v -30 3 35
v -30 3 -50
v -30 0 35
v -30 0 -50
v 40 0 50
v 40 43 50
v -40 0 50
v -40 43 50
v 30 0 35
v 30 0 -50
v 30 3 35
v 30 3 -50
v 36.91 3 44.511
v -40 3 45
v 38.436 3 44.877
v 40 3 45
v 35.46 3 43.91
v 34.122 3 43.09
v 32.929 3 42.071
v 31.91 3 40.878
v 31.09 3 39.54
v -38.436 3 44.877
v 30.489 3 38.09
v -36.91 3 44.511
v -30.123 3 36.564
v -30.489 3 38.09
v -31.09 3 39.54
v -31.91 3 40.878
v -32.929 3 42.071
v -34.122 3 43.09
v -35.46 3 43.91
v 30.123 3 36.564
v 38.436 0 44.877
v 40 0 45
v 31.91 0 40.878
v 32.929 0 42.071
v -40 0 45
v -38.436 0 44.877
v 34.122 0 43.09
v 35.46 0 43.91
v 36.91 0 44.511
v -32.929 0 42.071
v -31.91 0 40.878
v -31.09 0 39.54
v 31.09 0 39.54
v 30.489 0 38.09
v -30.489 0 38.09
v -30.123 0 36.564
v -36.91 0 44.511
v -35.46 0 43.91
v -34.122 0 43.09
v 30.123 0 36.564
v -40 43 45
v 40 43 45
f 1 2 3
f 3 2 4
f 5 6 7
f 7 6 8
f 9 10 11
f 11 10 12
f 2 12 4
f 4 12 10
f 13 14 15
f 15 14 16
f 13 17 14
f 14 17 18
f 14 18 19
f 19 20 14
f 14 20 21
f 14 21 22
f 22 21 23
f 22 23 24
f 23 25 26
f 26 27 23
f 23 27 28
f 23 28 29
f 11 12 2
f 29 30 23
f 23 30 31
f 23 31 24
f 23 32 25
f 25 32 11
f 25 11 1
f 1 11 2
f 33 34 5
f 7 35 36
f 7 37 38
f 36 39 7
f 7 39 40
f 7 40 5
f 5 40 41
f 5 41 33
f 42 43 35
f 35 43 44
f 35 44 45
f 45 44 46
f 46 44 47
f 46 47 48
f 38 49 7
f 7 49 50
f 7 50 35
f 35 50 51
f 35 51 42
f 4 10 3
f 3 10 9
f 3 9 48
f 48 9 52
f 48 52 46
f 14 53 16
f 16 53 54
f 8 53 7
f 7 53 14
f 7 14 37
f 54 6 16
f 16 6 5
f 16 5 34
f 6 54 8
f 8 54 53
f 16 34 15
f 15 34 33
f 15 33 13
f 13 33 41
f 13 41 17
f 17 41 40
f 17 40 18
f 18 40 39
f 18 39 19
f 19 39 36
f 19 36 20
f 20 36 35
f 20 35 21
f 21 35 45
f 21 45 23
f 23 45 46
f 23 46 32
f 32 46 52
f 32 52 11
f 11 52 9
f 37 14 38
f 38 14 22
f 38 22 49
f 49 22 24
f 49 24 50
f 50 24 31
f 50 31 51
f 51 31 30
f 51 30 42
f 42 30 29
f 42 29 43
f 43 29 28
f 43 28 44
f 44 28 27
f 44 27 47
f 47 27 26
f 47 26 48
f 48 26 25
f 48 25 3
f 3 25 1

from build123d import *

# Parameters (mm, degrees)
SKETCH_1_W           = 60
SKETCH_1_H           = 100
EXTRUDE_1_DEPTH      = 3
EXTRUDE_2_DEPTH      = 40
EXTRUDE_2_DEPTH_BACK = 3
SKETCH_2_W           = 80
SKETCH_2_H           = 5
FILLET_1_R           = 10


with BuildPart() as part:
    # Эскиз1 → Бобышка-Вытянуть1 (new body)
    with BuildSketch(Plane(origin=(0, 0, 0), x_dir=(1, 0, 0), z_dir=(0, 1, 0))):
        Rectangle(SKETCH_1_W, SKETCH_1_H)
    extrude(amount=EXTRUDE_1_DEPTH)

    # Эскиз2 → Бобышка-Вытянуть2 (add, two sides: drawn at the far end of the back side and taken through both)
    with BuildSketch(Plane(origin=(0, 3, 0), x_dir=(1, 0, 0), z_dir=(0, 1, 0)).offset(-EXTRUDE_2_DEPTH_BACK)):
        with Locations((0, -47.5)):
            Rectangle(SKETCH_2_W, SKETCH_2_H)
    extrude(amount=EXTRUDE_2_DEPTH + EXTRUDE_2_DEPTH_BACK)

    # Скругление1
    fillet_1_edges = [part.edges().sort_by_distance(p)[0] for p in [
        (30, 1.5, 45),
        (-30, 1.5, 45),
    ]]
    fillet(fillet_1_edges, radius=FILLET_1_R - 0.0001)  # a hair under: the kernel refuses the full size


solid = part.part
